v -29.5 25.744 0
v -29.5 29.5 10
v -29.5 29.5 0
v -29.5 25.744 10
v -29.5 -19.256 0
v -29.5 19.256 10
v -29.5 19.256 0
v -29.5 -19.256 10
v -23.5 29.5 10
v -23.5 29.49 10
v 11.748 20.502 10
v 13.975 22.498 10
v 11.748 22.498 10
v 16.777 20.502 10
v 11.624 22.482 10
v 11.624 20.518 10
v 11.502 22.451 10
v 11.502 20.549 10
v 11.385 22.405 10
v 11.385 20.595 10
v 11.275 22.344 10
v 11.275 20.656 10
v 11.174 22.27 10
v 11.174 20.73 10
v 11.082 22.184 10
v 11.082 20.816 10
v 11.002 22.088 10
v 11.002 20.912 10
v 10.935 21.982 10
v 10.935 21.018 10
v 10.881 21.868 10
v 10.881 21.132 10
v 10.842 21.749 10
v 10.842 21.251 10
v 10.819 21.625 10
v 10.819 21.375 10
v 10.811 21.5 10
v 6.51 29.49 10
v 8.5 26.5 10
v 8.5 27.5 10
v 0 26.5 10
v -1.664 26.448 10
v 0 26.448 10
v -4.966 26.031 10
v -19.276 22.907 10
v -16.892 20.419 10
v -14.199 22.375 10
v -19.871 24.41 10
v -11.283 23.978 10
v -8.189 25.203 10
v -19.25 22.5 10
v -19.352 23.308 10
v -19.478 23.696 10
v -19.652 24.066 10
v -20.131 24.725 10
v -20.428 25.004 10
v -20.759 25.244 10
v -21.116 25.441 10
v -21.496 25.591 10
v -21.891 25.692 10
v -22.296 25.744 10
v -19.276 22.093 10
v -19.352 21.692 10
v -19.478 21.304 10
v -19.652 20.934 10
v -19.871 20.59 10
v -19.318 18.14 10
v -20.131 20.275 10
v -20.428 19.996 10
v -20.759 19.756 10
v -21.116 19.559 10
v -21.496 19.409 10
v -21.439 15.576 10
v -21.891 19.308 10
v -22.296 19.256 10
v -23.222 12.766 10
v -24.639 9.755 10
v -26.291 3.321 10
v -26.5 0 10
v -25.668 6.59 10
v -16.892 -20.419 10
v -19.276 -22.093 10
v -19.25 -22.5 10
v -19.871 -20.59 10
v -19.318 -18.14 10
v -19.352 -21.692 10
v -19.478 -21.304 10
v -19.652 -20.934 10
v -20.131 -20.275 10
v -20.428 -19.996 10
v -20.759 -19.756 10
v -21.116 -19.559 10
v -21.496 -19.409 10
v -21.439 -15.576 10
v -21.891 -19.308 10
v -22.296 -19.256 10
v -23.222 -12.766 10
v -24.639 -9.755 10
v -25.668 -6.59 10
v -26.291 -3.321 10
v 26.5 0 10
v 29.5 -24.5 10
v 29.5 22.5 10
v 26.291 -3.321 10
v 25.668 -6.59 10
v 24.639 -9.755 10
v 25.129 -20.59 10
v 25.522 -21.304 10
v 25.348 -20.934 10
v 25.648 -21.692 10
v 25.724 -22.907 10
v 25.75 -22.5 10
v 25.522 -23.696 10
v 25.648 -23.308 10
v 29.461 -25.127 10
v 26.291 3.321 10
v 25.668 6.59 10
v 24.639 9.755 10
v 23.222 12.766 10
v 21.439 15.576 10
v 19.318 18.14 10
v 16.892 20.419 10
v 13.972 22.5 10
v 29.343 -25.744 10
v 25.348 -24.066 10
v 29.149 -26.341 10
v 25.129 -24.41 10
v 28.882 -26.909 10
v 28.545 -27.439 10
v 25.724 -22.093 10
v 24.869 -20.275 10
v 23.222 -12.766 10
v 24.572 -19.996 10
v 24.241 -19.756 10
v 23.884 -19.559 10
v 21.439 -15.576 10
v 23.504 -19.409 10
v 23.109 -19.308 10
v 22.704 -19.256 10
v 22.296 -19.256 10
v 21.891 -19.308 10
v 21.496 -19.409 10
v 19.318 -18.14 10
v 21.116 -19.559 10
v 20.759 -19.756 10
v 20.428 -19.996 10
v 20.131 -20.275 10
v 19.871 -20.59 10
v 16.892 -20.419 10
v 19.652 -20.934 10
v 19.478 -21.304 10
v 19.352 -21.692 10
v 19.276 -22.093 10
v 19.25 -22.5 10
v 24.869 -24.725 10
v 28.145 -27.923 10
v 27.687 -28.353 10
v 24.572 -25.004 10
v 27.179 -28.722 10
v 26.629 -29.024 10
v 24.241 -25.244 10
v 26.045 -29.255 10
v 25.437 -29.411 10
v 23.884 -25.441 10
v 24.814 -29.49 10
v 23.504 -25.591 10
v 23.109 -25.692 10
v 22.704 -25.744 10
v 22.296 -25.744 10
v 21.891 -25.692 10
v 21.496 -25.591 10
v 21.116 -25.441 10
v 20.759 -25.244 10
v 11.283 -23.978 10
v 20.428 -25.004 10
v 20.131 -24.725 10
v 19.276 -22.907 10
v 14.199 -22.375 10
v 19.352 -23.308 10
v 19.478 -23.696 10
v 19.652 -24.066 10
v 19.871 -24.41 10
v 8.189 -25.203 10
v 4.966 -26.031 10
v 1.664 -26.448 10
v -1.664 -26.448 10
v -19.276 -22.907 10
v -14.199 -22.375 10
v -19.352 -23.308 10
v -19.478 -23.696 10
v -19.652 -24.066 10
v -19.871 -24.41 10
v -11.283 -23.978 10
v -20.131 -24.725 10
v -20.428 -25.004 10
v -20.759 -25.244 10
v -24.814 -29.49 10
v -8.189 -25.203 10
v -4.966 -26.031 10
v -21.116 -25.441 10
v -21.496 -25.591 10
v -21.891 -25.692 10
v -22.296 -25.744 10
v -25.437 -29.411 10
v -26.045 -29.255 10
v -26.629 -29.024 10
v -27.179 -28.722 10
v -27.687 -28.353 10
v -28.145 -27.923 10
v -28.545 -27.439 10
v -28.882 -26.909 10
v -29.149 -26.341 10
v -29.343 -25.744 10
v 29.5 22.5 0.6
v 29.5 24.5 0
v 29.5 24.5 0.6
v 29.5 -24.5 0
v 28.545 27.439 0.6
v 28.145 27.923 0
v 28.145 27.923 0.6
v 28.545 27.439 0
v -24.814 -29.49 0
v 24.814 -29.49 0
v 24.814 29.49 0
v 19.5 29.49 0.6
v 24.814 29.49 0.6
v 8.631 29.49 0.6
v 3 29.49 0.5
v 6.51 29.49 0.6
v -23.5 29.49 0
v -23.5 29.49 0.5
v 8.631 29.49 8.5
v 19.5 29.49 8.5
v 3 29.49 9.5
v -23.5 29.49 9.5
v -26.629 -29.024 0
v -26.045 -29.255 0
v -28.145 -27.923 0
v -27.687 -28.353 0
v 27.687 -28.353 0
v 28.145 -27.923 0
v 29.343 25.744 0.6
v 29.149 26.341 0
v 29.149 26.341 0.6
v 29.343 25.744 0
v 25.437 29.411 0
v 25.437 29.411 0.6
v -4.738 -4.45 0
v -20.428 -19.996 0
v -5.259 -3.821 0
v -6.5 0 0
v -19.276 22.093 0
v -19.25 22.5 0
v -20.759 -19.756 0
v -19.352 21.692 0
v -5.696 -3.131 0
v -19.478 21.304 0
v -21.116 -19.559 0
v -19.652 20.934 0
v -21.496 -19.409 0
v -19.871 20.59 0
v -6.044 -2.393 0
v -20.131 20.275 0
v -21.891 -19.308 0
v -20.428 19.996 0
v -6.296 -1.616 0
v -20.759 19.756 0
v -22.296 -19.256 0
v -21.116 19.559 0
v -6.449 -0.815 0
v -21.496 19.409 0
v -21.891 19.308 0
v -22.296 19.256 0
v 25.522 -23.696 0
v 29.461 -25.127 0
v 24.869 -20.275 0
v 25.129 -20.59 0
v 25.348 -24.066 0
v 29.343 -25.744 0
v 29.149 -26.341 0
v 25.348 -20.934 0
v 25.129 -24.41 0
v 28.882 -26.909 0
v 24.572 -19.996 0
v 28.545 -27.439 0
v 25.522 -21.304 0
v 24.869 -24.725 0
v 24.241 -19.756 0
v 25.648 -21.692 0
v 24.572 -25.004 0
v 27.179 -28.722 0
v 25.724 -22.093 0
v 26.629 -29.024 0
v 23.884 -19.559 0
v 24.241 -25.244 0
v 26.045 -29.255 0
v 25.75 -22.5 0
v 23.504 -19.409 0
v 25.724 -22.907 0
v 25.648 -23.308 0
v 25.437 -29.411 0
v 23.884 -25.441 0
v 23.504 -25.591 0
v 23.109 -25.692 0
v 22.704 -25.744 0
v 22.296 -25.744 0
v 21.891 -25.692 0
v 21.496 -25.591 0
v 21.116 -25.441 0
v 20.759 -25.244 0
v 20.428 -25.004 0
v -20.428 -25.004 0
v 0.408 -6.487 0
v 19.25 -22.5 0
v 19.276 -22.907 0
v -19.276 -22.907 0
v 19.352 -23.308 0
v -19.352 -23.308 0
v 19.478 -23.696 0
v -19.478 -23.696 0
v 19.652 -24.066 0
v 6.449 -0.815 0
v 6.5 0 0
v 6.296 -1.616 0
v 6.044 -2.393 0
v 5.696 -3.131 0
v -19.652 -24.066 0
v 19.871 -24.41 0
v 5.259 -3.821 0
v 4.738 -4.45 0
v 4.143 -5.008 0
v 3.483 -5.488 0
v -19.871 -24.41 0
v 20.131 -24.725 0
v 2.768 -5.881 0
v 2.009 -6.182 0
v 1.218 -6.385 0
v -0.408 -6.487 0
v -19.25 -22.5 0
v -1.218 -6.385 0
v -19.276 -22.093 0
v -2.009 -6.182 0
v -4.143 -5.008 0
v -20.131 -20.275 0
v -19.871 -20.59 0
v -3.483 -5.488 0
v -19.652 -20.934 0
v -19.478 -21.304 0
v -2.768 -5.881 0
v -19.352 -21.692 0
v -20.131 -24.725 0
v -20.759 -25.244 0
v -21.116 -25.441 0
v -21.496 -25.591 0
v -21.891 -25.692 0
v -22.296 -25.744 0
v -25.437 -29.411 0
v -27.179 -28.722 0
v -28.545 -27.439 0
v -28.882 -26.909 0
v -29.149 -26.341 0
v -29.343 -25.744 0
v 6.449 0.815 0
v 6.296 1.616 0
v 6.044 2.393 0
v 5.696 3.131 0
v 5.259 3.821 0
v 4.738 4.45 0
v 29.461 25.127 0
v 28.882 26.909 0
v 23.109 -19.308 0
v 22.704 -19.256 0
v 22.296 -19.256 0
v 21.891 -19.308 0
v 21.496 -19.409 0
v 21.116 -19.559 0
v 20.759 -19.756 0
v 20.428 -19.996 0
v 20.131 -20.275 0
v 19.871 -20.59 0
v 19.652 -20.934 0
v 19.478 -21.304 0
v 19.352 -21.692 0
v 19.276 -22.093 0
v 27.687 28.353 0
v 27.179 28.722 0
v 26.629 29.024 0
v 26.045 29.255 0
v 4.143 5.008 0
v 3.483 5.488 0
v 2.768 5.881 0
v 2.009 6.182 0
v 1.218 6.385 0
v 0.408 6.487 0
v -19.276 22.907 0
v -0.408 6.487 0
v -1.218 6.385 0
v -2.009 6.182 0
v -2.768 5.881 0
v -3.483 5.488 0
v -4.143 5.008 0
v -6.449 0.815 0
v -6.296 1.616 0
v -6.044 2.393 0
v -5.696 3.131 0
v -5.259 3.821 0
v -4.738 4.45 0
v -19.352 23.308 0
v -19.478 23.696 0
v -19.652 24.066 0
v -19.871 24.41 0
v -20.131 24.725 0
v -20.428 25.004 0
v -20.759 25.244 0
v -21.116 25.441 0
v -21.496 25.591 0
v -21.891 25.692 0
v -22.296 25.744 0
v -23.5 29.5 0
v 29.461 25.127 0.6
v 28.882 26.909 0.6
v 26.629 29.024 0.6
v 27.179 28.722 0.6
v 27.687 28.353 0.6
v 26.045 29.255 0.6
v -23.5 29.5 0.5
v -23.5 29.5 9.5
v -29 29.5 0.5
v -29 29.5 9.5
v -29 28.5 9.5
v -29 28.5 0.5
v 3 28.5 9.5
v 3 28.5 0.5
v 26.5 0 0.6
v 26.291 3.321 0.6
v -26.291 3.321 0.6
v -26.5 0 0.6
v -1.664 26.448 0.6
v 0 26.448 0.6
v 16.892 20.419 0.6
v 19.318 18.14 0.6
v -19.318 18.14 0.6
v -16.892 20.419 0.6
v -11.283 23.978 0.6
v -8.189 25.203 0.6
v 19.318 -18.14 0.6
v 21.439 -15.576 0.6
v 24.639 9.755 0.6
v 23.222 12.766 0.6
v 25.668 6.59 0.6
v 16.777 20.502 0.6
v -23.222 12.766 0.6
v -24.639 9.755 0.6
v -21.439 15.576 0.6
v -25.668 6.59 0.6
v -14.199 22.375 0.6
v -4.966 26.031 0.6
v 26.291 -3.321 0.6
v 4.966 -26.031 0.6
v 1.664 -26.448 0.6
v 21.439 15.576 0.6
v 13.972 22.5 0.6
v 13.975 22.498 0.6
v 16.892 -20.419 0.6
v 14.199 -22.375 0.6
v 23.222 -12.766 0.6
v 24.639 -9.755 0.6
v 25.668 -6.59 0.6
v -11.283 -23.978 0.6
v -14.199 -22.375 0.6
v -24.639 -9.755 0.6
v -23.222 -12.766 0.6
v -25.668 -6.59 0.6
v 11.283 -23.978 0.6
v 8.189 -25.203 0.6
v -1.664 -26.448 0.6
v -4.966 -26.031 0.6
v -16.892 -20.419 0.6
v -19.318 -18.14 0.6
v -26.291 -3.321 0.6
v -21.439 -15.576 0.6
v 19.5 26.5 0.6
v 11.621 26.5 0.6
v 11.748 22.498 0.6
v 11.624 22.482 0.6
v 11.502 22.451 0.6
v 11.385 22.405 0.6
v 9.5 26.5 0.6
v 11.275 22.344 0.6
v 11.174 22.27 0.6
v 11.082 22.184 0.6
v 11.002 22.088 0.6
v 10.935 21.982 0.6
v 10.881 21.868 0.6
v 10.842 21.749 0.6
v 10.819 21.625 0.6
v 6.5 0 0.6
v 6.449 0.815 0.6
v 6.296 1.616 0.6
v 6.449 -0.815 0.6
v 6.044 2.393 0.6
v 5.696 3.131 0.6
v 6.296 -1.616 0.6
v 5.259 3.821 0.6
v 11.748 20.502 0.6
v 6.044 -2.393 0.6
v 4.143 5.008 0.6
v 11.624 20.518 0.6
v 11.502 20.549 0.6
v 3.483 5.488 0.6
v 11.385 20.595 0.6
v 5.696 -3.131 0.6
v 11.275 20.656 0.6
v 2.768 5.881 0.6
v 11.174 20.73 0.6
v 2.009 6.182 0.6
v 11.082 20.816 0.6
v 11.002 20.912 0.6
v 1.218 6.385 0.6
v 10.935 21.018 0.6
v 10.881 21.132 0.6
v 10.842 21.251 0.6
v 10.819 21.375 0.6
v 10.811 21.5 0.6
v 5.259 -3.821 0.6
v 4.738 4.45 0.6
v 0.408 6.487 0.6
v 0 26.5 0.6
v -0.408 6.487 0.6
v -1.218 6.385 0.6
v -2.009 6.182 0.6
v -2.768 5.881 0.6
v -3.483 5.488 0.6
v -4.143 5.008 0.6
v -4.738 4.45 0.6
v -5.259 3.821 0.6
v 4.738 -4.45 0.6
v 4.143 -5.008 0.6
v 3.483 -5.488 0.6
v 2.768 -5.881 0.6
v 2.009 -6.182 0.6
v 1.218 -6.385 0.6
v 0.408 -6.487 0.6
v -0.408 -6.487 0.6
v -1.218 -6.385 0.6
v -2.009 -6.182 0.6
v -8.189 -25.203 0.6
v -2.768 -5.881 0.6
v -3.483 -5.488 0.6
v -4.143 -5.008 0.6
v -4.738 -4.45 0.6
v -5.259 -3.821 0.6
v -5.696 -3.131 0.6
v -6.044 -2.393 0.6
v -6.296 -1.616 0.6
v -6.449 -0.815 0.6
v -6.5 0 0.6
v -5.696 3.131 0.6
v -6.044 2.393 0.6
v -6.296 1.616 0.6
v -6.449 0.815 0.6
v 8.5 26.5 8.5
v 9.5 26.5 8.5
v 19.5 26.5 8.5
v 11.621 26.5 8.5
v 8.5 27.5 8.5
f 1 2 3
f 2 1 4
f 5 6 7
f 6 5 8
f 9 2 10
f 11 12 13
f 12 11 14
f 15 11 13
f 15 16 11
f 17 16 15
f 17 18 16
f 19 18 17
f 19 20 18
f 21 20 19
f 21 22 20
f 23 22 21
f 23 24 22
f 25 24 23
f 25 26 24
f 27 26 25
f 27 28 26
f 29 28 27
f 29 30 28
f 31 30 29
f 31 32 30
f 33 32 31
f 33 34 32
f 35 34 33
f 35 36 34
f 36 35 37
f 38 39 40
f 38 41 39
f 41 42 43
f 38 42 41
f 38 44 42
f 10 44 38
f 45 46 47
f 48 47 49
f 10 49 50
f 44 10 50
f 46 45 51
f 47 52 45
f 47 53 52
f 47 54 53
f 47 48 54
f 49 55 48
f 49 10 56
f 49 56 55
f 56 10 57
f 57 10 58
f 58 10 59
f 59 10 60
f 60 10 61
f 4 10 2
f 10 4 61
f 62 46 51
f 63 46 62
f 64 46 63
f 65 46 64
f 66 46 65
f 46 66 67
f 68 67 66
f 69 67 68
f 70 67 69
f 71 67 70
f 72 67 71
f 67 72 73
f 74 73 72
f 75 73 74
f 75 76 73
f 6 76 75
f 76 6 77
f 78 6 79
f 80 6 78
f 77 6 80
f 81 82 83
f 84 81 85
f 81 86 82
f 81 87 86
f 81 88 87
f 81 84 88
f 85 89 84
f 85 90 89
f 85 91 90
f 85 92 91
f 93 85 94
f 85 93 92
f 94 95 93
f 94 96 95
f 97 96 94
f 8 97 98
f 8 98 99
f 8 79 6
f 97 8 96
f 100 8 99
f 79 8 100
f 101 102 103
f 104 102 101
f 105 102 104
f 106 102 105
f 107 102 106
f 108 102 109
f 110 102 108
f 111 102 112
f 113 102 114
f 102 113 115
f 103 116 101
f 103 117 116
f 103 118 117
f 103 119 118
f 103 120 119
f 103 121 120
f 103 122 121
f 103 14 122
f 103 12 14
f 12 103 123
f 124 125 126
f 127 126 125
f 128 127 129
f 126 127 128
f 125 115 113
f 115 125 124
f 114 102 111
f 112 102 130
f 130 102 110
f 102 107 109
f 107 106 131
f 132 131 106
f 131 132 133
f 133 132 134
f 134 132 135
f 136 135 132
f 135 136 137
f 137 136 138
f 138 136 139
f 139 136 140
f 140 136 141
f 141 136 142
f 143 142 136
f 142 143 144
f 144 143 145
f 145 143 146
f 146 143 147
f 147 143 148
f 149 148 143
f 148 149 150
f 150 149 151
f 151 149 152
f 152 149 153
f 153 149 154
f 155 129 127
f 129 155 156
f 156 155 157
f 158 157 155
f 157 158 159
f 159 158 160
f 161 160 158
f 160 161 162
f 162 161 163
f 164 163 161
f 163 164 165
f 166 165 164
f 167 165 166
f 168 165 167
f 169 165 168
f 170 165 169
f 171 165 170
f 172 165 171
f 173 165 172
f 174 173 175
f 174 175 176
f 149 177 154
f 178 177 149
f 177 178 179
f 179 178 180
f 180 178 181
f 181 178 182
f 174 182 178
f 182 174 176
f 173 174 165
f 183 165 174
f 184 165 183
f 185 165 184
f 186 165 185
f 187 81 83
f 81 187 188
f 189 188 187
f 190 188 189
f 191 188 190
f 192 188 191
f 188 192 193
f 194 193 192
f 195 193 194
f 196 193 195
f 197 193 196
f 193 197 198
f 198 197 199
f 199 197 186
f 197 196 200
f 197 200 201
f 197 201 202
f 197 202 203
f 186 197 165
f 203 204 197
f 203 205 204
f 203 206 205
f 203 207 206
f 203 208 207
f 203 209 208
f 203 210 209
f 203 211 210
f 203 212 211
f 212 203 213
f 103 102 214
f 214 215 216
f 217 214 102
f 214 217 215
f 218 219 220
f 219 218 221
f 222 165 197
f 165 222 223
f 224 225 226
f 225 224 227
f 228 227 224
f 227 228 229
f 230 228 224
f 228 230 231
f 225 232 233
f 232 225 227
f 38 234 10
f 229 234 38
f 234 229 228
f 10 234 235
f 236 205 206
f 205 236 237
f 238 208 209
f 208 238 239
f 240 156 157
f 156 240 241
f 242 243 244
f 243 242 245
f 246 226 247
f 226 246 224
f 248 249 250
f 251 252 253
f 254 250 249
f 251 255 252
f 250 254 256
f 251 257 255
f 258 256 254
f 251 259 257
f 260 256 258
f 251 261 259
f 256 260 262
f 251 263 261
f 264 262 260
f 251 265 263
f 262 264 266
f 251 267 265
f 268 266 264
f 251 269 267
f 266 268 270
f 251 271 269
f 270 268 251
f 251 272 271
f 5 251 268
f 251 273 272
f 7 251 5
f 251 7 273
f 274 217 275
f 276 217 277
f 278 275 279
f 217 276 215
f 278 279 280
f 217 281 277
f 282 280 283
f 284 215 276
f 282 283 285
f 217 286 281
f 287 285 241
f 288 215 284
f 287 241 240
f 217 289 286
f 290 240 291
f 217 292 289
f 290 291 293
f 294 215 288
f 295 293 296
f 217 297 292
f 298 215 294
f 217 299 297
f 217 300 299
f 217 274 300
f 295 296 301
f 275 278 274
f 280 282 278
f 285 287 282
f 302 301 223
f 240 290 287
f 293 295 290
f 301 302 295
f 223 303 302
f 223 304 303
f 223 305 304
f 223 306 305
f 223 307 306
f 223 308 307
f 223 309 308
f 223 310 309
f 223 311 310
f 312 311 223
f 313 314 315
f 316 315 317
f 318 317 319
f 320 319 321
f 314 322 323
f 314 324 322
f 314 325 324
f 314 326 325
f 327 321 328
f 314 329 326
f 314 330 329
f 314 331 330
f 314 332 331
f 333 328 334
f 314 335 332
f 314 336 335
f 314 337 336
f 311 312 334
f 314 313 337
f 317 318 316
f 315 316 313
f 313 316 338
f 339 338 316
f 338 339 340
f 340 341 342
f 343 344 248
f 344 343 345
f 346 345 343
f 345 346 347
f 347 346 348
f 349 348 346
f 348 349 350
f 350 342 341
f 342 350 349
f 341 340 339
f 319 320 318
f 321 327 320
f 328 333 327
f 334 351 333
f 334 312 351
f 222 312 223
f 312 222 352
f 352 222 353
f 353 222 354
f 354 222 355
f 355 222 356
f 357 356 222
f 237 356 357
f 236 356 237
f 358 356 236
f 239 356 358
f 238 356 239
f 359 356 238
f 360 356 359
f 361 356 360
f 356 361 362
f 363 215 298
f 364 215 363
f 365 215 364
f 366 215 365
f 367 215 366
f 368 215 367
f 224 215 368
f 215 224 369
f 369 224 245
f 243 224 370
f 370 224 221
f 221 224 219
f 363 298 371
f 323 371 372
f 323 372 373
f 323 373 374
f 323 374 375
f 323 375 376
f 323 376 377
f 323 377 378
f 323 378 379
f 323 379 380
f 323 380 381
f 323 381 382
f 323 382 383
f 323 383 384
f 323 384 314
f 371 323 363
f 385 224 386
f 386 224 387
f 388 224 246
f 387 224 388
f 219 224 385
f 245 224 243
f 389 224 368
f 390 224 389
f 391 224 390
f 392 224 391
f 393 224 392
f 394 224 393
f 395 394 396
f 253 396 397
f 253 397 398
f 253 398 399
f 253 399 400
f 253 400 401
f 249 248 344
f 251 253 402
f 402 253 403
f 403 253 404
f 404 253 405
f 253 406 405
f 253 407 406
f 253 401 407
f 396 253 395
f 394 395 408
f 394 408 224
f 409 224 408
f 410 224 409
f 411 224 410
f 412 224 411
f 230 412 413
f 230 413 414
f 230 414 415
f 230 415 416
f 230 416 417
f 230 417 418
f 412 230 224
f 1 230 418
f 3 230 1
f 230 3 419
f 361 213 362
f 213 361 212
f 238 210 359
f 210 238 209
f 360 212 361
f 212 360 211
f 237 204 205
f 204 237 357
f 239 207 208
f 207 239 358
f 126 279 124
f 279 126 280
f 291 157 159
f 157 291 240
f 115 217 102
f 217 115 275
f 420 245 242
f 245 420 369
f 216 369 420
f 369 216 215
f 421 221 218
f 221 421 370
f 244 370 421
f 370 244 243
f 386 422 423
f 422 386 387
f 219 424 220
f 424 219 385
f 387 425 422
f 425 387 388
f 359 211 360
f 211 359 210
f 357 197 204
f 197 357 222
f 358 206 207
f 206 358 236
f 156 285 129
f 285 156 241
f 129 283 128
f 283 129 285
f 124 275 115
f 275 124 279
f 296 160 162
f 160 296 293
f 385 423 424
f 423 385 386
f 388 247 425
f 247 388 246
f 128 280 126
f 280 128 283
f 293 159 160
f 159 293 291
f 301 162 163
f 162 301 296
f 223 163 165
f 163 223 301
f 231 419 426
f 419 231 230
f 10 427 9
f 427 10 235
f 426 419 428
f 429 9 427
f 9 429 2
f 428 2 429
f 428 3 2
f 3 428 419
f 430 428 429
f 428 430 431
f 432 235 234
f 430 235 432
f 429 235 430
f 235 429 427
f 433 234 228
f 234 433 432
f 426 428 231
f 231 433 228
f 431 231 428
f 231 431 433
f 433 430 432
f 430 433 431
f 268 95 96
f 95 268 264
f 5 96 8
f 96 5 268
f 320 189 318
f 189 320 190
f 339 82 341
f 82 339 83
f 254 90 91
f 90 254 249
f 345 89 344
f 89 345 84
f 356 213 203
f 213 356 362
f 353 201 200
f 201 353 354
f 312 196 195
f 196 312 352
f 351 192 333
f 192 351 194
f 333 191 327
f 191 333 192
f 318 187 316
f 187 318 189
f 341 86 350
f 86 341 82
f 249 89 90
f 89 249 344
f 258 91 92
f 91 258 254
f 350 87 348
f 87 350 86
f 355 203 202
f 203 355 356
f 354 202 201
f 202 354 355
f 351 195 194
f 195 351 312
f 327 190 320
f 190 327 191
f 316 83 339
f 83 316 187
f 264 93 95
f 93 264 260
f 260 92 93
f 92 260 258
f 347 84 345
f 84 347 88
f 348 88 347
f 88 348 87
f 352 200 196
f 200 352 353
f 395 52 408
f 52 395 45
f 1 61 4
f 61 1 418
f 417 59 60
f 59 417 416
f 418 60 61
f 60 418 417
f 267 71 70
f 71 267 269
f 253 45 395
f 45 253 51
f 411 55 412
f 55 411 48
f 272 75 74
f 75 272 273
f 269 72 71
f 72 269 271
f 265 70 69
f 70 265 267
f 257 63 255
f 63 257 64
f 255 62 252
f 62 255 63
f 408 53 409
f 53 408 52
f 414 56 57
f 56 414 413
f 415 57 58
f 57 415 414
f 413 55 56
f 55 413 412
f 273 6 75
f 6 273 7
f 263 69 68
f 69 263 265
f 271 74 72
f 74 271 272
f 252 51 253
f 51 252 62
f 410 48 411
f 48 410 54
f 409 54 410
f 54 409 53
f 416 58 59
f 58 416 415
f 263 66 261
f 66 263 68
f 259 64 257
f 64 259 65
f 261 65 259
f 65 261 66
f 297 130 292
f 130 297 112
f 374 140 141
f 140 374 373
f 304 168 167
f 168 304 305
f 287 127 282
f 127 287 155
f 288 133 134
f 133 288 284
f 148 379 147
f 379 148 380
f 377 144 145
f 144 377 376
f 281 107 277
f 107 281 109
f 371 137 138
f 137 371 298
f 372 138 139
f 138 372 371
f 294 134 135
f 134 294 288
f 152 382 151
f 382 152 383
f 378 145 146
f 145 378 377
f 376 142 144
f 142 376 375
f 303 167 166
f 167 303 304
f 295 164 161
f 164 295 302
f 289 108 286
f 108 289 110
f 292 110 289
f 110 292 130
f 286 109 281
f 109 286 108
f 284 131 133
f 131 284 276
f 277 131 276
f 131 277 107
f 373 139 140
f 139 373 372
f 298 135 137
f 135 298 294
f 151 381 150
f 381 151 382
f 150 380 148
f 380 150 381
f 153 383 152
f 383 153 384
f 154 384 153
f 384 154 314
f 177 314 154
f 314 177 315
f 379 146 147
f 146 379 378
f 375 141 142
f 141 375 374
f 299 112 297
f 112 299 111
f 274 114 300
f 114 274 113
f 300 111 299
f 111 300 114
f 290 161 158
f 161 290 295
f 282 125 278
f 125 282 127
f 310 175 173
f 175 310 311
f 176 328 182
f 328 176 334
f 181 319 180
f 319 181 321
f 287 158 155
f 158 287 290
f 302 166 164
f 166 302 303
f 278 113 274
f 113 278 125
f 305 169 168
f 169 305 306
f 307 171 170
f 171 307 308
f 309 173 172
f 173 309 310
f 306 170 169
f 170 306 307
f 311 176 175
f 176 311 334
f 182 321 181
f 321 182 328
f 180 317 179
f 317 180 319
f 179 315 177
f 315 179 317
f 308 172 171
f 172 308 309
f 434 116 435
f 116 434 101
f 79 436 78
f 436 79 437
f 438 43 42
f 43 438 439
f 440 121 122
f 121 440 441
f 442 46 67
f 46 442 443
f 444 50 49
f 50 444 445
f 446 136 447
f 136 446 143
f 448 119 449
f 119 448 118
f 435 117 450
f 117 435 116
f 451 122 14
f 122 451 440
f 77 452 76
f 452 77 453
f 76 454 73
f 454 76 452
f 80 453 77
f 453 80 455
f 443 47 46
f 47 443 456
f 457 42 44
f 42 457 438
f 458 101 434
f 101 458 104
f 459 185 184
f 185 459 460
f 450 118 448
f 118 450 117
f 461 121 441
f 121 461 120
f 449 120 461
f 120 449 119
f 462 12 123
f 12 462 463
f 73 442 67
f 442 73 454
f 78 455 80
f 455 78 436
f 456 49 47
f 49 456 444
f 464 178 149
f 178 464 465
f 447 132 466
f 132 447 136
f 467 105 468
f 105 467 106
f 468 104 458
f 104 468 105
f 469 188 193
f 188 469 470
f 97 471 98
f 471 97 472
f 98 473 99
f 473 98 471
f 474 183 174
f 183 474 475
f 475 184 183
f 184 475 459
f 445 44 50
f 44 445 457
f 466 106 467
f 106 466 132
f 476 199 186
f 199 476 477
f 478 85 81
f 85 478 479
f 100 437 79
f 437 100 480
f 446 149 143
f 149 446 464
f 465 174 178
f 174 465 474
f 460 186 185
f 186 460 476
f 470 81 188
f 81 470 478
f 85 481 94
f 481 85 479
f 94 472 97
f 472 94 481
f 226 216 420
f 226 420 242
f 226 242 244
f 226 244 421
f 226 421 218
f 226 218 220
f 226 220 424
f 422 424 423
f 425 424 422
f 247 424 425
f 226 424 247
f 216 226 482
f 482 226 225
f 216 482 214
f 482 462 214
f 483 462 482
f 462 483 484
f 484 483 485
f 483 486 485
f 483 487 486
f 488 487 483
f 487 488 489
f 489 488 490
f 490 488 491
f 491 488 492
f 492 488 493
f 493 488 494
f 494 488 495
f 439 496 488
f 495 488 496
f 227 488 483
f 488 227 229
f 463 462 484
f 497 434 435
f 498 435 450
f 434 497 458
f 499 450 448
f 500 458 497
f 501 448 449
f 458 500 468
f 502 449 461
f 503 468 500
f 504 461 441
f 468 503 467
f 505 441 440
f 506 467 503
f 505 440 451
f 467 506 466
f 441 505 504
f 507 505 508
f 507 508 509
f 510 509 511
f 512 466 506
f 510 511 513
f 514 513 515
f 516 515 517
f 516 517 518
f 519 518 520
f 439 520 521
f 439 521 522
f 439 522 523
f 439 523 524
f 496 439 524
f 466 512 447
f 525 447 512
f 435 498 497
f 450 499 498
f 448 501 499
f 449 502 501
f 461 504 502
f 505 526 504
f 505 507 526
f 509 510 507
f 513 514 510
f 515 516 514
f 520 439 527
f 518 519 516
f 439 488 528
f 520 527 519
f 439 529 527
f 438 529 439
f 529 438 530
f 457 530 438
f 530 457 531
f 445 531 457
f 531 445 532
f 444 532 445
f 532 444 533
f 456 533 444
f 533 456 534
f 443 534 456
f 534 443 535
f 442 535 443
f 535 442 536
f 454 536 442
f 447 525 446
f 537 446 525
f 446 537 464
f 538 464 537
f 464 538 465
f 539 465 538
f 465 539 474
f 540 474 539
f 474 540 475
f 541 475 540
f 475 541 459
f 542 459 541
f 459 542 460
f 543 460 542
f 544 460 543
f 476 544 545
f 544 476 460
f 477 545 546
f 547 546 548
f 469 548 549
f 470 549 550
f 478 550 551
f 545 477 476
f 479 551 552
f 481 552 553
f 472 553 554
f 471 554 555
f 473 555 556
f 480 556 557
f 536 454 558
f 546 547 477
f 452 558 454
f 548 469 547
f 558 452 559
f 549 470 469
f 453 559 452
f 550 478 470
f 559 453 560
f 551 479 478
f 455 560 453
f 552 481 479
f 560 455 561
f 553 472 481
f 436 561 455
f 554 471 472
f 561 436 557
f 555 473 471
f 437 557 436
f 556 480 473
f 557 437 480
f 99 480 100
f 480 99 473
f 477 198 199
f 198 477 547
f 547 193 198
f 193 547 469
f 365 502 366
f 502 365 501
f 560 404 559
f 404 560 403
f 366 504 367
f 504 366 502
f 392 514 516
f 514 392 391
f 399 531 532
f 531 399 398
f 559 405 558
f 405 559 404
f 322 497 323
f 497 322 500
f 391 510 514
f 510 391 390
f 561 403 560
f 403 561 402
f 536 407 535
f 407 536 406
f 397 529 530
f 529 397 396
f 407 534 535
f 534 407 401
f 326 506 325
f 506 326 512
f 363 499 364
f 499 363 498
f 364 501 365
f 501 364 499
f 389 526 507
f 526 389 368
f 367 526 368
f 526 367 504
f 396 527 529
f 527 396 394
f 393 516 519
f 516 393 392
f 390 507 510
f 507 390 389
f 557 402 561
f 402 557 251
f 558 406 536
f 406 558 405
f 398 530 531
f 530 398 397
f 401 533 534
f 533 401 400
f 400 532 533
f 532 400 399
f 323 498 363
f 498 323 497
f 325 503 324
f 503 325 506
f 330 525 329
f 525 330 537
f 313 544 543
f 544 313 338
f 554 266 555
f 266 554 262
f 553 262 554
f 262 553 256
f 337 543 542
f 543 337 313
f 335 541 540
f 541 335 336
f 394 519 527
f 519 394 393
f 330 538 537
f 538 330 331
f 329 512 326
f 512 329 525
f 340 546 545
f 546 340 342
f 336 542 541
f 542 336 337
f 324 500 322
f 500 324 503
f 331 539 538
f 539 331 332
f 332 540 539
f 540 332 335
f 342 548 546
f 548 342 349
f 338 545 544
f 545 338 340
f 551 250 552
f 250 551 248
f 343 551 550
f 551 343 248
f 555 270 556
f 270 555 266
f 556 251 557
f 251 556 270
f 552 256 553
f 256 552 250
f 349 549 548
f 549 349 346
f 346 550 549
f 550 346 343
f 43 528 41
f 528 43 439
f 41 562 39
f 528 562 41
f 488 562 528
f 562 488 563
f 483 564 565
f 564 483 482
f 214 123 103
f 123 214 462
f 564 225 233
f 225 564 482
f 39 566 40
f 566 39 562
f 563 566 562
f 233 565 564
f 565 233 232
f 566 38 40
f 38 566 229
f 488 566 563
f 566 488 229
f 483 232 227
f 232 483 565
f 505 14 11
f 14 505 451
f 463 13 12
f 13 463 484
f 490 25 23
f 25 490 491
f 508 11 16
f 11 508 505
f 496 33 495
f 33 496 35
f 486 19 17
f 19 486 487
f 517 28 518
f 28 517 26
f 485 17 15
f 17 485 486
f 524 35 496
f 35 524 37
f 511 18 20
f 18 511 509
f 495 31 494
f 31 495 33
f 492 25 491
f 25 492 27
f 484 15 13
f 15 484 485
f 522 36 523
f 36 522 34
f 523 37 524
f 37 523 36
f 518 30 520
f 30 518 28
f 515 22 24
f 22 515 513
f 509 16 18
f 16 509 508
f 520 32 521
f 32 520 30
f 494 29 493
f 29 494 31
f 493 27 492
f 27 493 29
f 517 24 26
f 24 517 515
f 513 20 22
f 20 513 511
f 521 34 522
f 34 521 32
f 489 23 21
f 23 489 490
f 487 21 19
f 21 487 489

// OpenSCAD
$fn = 50;


union() {
	difference() {
		union() {
			translate(v = [0, 0, 0]) {
				rotate(a = [0, 0, 0]) {
					hull() {
						translate(v = [-24.5000000000, 24.5000000000, 0]) {
							rotate(a = [0, 0, 0]) {
								translate(v = [0, 0, 0]) {
									rotate(a = [0, 0, 0]) {
										cylinder(h = 10, r = 5);
									}
								}
							}
						}
						translate(v = [24.5000000000, 24.5000000000, 0]) {
							rotate(a = [0, 0, 0]) {
								translate(v = [0, 0, 0]) {
									rotate(a = [0, 0, 0]) {
										cylinder(h = 10, r = 5);
									}
								}
							}
						}
						translate(v = [-24.5000000000, -24.5000000000, 0]) {
							rotate(a = [0, 0, 0]) {
								translate(v = [0, 0, 0]) {
									rotate(a = [0, 0, 0]) {
										cylinder(h = 10, r = 5);
									}
								}
							}
						}
						translate(v = [24.5000000000, -24.5000000000, 0]) {
							rotate(a = [0, 0, 0]) {
								translate(v = [0, 0, 0]) {
									rotate(a = [0, 0, 0]) {
										cylinder(h = 10, r = 5);
									}
								}
							}
						}
					}
				}
			}
			translate(v = [-29.5000000000, 23.5000000000, 0]) {
				rotate(a = [0, 0, 0]) {
					cube(size = [6, 6, 10]);
				}
			}
		}
		union() {
			#translate(v = [-29.0000000000, 28.5000000000, 0.5000000000]) {
				rotate(a = [0, 0, 0]) {
					cube(size = [32, 1, 9.0000000000]);
				}
			}
			translate(v = [-30.0000000000, -22.5000000000, -125]) {
				rotate(a = [0, 0, 0]) {
					hull() {
						translate(v = [7.5000000000, 0, 0]) {
							rotate(a = [0, 0, 0]) {
								translate(v = [0, 0, 0]) {
									rotate(a = [0, 0, 0]) {
										cylinder(h = 250, r = 3.2500000000);
									}
								}
							}
						}
						translate(v = [-7.5000000000, 0, 0]) {
							rotate(a = [0, 0, 0]) {
								translate(v = [0, 0, 0]) {
									rotate(a = [0, 0, 0]) {
										cylinder(h = 250, r = 3.2500000000);
									}
								}
							}
						}
					}
				}
			}
			translate(v = [-30.0000000000, 22.5000000000, -125]) {
				rotate(a = [0, 0, 0]) {
					hull() {
						translate(v = [7.5000000000, 0, 0]) {
							rotate(a = [0, 0, 0]) {
								translate(v = [0, 0, 0]) {
									rotate(a = [0, 0, 0]) {
										cylinder(h = 250, r = 3.2500000000);
									}
								}
							}
						}
						translate(v = [-7.5000000000, 0, 0]) {
							rotate(a = [0, 0, 0]) {
								translate(v = [0, 0, 0]) {
									rotate(a = [0, 0, 0]) {
										cylinder(h = 250, r = 3.2500000000);
									}
								}
							}
						}
					}
				}
			}
			translate(v = [22.5000000000, -22.5000000000, -125.0000000000]) {
				rotate(a = [0, 0, 0]) {
					cylinder(h = 250, r = 3.2500000000);
				}
			}
			translate(v = [0, 0, 0.6000000000]) {
				rotate(a = [0, 0, 0]) {
					cylinder(h = 12.4000000000, r = 26.5000000000);
				}
			}
			translate(v = [0, 0, -5.0000000000]) {
				rotate(a = [0, 0, 0]) {
					cylinder(h = 10, r = 6.5000000000);
				}
			}
			translate(v = [0.0000000000, 22.5000000000, 0.6000000000]) {
				rotate(a = [0, 0, 0]) {
					cube(size = [29.5000000000, 4, 12.4000000000]);
				}
			}
			translate(v = [19.5000000000, 22.5000000000, 0.6000000000]) {
				rotate(a = [0, 0, 0]) {
					cube(size = [10, 7, 12.4000000000]);
				}
			}
			translate(v = [8.5000000000, 22.5000000000, 8.5000000000]) {
				rotate(a = [0, 0, 0]) {
					cube(size = [21, 7, 1.5000000000]);
				}
			}
			translate(v = [5.7500000000, 30.2500000000, 0.6000000000]) {
				rotate(a = [0, 0, -45]) {
					cube(size = [7.5000000000, 1.5000000000, 12.4000000000]);
				}
			}
			translate(v = [5.0610000000, 20.5000000000, 0.6000000000]) {
				rotate(a = [0, 0, 0]) {
					cube(size = [7.5000000000, 2, 9.4000000000]);
				}
			}
		}
	}
	union() {
		translate(v = [14.3110000000, 21.5000000000, 0]) {
			rotate(a = [0, 0, 0]) {
				hull() {
					translate(v = [2.5000000000, 0, 0]) {
						rotate(a = [0, 0, 0]) {
							#translate(v = [0, 0, 0]) {
								rotate(a = [0, 0, 0]) {
									cylinder(h = 10, r = 1.0000000000);
								}
							}
						}
					}
					translate(v = [-2.5000000000, 0, 0]) {
						rotate(a = [0, 0, 0]) {
							#translate(v = [0, 0, 0]) {
								rotate(a = [0, 0, 0]) {
									cylinder(h = 10, r = 1.0000000000);
								}
							}
						}
					}
				}
			}
		}
	}
}
